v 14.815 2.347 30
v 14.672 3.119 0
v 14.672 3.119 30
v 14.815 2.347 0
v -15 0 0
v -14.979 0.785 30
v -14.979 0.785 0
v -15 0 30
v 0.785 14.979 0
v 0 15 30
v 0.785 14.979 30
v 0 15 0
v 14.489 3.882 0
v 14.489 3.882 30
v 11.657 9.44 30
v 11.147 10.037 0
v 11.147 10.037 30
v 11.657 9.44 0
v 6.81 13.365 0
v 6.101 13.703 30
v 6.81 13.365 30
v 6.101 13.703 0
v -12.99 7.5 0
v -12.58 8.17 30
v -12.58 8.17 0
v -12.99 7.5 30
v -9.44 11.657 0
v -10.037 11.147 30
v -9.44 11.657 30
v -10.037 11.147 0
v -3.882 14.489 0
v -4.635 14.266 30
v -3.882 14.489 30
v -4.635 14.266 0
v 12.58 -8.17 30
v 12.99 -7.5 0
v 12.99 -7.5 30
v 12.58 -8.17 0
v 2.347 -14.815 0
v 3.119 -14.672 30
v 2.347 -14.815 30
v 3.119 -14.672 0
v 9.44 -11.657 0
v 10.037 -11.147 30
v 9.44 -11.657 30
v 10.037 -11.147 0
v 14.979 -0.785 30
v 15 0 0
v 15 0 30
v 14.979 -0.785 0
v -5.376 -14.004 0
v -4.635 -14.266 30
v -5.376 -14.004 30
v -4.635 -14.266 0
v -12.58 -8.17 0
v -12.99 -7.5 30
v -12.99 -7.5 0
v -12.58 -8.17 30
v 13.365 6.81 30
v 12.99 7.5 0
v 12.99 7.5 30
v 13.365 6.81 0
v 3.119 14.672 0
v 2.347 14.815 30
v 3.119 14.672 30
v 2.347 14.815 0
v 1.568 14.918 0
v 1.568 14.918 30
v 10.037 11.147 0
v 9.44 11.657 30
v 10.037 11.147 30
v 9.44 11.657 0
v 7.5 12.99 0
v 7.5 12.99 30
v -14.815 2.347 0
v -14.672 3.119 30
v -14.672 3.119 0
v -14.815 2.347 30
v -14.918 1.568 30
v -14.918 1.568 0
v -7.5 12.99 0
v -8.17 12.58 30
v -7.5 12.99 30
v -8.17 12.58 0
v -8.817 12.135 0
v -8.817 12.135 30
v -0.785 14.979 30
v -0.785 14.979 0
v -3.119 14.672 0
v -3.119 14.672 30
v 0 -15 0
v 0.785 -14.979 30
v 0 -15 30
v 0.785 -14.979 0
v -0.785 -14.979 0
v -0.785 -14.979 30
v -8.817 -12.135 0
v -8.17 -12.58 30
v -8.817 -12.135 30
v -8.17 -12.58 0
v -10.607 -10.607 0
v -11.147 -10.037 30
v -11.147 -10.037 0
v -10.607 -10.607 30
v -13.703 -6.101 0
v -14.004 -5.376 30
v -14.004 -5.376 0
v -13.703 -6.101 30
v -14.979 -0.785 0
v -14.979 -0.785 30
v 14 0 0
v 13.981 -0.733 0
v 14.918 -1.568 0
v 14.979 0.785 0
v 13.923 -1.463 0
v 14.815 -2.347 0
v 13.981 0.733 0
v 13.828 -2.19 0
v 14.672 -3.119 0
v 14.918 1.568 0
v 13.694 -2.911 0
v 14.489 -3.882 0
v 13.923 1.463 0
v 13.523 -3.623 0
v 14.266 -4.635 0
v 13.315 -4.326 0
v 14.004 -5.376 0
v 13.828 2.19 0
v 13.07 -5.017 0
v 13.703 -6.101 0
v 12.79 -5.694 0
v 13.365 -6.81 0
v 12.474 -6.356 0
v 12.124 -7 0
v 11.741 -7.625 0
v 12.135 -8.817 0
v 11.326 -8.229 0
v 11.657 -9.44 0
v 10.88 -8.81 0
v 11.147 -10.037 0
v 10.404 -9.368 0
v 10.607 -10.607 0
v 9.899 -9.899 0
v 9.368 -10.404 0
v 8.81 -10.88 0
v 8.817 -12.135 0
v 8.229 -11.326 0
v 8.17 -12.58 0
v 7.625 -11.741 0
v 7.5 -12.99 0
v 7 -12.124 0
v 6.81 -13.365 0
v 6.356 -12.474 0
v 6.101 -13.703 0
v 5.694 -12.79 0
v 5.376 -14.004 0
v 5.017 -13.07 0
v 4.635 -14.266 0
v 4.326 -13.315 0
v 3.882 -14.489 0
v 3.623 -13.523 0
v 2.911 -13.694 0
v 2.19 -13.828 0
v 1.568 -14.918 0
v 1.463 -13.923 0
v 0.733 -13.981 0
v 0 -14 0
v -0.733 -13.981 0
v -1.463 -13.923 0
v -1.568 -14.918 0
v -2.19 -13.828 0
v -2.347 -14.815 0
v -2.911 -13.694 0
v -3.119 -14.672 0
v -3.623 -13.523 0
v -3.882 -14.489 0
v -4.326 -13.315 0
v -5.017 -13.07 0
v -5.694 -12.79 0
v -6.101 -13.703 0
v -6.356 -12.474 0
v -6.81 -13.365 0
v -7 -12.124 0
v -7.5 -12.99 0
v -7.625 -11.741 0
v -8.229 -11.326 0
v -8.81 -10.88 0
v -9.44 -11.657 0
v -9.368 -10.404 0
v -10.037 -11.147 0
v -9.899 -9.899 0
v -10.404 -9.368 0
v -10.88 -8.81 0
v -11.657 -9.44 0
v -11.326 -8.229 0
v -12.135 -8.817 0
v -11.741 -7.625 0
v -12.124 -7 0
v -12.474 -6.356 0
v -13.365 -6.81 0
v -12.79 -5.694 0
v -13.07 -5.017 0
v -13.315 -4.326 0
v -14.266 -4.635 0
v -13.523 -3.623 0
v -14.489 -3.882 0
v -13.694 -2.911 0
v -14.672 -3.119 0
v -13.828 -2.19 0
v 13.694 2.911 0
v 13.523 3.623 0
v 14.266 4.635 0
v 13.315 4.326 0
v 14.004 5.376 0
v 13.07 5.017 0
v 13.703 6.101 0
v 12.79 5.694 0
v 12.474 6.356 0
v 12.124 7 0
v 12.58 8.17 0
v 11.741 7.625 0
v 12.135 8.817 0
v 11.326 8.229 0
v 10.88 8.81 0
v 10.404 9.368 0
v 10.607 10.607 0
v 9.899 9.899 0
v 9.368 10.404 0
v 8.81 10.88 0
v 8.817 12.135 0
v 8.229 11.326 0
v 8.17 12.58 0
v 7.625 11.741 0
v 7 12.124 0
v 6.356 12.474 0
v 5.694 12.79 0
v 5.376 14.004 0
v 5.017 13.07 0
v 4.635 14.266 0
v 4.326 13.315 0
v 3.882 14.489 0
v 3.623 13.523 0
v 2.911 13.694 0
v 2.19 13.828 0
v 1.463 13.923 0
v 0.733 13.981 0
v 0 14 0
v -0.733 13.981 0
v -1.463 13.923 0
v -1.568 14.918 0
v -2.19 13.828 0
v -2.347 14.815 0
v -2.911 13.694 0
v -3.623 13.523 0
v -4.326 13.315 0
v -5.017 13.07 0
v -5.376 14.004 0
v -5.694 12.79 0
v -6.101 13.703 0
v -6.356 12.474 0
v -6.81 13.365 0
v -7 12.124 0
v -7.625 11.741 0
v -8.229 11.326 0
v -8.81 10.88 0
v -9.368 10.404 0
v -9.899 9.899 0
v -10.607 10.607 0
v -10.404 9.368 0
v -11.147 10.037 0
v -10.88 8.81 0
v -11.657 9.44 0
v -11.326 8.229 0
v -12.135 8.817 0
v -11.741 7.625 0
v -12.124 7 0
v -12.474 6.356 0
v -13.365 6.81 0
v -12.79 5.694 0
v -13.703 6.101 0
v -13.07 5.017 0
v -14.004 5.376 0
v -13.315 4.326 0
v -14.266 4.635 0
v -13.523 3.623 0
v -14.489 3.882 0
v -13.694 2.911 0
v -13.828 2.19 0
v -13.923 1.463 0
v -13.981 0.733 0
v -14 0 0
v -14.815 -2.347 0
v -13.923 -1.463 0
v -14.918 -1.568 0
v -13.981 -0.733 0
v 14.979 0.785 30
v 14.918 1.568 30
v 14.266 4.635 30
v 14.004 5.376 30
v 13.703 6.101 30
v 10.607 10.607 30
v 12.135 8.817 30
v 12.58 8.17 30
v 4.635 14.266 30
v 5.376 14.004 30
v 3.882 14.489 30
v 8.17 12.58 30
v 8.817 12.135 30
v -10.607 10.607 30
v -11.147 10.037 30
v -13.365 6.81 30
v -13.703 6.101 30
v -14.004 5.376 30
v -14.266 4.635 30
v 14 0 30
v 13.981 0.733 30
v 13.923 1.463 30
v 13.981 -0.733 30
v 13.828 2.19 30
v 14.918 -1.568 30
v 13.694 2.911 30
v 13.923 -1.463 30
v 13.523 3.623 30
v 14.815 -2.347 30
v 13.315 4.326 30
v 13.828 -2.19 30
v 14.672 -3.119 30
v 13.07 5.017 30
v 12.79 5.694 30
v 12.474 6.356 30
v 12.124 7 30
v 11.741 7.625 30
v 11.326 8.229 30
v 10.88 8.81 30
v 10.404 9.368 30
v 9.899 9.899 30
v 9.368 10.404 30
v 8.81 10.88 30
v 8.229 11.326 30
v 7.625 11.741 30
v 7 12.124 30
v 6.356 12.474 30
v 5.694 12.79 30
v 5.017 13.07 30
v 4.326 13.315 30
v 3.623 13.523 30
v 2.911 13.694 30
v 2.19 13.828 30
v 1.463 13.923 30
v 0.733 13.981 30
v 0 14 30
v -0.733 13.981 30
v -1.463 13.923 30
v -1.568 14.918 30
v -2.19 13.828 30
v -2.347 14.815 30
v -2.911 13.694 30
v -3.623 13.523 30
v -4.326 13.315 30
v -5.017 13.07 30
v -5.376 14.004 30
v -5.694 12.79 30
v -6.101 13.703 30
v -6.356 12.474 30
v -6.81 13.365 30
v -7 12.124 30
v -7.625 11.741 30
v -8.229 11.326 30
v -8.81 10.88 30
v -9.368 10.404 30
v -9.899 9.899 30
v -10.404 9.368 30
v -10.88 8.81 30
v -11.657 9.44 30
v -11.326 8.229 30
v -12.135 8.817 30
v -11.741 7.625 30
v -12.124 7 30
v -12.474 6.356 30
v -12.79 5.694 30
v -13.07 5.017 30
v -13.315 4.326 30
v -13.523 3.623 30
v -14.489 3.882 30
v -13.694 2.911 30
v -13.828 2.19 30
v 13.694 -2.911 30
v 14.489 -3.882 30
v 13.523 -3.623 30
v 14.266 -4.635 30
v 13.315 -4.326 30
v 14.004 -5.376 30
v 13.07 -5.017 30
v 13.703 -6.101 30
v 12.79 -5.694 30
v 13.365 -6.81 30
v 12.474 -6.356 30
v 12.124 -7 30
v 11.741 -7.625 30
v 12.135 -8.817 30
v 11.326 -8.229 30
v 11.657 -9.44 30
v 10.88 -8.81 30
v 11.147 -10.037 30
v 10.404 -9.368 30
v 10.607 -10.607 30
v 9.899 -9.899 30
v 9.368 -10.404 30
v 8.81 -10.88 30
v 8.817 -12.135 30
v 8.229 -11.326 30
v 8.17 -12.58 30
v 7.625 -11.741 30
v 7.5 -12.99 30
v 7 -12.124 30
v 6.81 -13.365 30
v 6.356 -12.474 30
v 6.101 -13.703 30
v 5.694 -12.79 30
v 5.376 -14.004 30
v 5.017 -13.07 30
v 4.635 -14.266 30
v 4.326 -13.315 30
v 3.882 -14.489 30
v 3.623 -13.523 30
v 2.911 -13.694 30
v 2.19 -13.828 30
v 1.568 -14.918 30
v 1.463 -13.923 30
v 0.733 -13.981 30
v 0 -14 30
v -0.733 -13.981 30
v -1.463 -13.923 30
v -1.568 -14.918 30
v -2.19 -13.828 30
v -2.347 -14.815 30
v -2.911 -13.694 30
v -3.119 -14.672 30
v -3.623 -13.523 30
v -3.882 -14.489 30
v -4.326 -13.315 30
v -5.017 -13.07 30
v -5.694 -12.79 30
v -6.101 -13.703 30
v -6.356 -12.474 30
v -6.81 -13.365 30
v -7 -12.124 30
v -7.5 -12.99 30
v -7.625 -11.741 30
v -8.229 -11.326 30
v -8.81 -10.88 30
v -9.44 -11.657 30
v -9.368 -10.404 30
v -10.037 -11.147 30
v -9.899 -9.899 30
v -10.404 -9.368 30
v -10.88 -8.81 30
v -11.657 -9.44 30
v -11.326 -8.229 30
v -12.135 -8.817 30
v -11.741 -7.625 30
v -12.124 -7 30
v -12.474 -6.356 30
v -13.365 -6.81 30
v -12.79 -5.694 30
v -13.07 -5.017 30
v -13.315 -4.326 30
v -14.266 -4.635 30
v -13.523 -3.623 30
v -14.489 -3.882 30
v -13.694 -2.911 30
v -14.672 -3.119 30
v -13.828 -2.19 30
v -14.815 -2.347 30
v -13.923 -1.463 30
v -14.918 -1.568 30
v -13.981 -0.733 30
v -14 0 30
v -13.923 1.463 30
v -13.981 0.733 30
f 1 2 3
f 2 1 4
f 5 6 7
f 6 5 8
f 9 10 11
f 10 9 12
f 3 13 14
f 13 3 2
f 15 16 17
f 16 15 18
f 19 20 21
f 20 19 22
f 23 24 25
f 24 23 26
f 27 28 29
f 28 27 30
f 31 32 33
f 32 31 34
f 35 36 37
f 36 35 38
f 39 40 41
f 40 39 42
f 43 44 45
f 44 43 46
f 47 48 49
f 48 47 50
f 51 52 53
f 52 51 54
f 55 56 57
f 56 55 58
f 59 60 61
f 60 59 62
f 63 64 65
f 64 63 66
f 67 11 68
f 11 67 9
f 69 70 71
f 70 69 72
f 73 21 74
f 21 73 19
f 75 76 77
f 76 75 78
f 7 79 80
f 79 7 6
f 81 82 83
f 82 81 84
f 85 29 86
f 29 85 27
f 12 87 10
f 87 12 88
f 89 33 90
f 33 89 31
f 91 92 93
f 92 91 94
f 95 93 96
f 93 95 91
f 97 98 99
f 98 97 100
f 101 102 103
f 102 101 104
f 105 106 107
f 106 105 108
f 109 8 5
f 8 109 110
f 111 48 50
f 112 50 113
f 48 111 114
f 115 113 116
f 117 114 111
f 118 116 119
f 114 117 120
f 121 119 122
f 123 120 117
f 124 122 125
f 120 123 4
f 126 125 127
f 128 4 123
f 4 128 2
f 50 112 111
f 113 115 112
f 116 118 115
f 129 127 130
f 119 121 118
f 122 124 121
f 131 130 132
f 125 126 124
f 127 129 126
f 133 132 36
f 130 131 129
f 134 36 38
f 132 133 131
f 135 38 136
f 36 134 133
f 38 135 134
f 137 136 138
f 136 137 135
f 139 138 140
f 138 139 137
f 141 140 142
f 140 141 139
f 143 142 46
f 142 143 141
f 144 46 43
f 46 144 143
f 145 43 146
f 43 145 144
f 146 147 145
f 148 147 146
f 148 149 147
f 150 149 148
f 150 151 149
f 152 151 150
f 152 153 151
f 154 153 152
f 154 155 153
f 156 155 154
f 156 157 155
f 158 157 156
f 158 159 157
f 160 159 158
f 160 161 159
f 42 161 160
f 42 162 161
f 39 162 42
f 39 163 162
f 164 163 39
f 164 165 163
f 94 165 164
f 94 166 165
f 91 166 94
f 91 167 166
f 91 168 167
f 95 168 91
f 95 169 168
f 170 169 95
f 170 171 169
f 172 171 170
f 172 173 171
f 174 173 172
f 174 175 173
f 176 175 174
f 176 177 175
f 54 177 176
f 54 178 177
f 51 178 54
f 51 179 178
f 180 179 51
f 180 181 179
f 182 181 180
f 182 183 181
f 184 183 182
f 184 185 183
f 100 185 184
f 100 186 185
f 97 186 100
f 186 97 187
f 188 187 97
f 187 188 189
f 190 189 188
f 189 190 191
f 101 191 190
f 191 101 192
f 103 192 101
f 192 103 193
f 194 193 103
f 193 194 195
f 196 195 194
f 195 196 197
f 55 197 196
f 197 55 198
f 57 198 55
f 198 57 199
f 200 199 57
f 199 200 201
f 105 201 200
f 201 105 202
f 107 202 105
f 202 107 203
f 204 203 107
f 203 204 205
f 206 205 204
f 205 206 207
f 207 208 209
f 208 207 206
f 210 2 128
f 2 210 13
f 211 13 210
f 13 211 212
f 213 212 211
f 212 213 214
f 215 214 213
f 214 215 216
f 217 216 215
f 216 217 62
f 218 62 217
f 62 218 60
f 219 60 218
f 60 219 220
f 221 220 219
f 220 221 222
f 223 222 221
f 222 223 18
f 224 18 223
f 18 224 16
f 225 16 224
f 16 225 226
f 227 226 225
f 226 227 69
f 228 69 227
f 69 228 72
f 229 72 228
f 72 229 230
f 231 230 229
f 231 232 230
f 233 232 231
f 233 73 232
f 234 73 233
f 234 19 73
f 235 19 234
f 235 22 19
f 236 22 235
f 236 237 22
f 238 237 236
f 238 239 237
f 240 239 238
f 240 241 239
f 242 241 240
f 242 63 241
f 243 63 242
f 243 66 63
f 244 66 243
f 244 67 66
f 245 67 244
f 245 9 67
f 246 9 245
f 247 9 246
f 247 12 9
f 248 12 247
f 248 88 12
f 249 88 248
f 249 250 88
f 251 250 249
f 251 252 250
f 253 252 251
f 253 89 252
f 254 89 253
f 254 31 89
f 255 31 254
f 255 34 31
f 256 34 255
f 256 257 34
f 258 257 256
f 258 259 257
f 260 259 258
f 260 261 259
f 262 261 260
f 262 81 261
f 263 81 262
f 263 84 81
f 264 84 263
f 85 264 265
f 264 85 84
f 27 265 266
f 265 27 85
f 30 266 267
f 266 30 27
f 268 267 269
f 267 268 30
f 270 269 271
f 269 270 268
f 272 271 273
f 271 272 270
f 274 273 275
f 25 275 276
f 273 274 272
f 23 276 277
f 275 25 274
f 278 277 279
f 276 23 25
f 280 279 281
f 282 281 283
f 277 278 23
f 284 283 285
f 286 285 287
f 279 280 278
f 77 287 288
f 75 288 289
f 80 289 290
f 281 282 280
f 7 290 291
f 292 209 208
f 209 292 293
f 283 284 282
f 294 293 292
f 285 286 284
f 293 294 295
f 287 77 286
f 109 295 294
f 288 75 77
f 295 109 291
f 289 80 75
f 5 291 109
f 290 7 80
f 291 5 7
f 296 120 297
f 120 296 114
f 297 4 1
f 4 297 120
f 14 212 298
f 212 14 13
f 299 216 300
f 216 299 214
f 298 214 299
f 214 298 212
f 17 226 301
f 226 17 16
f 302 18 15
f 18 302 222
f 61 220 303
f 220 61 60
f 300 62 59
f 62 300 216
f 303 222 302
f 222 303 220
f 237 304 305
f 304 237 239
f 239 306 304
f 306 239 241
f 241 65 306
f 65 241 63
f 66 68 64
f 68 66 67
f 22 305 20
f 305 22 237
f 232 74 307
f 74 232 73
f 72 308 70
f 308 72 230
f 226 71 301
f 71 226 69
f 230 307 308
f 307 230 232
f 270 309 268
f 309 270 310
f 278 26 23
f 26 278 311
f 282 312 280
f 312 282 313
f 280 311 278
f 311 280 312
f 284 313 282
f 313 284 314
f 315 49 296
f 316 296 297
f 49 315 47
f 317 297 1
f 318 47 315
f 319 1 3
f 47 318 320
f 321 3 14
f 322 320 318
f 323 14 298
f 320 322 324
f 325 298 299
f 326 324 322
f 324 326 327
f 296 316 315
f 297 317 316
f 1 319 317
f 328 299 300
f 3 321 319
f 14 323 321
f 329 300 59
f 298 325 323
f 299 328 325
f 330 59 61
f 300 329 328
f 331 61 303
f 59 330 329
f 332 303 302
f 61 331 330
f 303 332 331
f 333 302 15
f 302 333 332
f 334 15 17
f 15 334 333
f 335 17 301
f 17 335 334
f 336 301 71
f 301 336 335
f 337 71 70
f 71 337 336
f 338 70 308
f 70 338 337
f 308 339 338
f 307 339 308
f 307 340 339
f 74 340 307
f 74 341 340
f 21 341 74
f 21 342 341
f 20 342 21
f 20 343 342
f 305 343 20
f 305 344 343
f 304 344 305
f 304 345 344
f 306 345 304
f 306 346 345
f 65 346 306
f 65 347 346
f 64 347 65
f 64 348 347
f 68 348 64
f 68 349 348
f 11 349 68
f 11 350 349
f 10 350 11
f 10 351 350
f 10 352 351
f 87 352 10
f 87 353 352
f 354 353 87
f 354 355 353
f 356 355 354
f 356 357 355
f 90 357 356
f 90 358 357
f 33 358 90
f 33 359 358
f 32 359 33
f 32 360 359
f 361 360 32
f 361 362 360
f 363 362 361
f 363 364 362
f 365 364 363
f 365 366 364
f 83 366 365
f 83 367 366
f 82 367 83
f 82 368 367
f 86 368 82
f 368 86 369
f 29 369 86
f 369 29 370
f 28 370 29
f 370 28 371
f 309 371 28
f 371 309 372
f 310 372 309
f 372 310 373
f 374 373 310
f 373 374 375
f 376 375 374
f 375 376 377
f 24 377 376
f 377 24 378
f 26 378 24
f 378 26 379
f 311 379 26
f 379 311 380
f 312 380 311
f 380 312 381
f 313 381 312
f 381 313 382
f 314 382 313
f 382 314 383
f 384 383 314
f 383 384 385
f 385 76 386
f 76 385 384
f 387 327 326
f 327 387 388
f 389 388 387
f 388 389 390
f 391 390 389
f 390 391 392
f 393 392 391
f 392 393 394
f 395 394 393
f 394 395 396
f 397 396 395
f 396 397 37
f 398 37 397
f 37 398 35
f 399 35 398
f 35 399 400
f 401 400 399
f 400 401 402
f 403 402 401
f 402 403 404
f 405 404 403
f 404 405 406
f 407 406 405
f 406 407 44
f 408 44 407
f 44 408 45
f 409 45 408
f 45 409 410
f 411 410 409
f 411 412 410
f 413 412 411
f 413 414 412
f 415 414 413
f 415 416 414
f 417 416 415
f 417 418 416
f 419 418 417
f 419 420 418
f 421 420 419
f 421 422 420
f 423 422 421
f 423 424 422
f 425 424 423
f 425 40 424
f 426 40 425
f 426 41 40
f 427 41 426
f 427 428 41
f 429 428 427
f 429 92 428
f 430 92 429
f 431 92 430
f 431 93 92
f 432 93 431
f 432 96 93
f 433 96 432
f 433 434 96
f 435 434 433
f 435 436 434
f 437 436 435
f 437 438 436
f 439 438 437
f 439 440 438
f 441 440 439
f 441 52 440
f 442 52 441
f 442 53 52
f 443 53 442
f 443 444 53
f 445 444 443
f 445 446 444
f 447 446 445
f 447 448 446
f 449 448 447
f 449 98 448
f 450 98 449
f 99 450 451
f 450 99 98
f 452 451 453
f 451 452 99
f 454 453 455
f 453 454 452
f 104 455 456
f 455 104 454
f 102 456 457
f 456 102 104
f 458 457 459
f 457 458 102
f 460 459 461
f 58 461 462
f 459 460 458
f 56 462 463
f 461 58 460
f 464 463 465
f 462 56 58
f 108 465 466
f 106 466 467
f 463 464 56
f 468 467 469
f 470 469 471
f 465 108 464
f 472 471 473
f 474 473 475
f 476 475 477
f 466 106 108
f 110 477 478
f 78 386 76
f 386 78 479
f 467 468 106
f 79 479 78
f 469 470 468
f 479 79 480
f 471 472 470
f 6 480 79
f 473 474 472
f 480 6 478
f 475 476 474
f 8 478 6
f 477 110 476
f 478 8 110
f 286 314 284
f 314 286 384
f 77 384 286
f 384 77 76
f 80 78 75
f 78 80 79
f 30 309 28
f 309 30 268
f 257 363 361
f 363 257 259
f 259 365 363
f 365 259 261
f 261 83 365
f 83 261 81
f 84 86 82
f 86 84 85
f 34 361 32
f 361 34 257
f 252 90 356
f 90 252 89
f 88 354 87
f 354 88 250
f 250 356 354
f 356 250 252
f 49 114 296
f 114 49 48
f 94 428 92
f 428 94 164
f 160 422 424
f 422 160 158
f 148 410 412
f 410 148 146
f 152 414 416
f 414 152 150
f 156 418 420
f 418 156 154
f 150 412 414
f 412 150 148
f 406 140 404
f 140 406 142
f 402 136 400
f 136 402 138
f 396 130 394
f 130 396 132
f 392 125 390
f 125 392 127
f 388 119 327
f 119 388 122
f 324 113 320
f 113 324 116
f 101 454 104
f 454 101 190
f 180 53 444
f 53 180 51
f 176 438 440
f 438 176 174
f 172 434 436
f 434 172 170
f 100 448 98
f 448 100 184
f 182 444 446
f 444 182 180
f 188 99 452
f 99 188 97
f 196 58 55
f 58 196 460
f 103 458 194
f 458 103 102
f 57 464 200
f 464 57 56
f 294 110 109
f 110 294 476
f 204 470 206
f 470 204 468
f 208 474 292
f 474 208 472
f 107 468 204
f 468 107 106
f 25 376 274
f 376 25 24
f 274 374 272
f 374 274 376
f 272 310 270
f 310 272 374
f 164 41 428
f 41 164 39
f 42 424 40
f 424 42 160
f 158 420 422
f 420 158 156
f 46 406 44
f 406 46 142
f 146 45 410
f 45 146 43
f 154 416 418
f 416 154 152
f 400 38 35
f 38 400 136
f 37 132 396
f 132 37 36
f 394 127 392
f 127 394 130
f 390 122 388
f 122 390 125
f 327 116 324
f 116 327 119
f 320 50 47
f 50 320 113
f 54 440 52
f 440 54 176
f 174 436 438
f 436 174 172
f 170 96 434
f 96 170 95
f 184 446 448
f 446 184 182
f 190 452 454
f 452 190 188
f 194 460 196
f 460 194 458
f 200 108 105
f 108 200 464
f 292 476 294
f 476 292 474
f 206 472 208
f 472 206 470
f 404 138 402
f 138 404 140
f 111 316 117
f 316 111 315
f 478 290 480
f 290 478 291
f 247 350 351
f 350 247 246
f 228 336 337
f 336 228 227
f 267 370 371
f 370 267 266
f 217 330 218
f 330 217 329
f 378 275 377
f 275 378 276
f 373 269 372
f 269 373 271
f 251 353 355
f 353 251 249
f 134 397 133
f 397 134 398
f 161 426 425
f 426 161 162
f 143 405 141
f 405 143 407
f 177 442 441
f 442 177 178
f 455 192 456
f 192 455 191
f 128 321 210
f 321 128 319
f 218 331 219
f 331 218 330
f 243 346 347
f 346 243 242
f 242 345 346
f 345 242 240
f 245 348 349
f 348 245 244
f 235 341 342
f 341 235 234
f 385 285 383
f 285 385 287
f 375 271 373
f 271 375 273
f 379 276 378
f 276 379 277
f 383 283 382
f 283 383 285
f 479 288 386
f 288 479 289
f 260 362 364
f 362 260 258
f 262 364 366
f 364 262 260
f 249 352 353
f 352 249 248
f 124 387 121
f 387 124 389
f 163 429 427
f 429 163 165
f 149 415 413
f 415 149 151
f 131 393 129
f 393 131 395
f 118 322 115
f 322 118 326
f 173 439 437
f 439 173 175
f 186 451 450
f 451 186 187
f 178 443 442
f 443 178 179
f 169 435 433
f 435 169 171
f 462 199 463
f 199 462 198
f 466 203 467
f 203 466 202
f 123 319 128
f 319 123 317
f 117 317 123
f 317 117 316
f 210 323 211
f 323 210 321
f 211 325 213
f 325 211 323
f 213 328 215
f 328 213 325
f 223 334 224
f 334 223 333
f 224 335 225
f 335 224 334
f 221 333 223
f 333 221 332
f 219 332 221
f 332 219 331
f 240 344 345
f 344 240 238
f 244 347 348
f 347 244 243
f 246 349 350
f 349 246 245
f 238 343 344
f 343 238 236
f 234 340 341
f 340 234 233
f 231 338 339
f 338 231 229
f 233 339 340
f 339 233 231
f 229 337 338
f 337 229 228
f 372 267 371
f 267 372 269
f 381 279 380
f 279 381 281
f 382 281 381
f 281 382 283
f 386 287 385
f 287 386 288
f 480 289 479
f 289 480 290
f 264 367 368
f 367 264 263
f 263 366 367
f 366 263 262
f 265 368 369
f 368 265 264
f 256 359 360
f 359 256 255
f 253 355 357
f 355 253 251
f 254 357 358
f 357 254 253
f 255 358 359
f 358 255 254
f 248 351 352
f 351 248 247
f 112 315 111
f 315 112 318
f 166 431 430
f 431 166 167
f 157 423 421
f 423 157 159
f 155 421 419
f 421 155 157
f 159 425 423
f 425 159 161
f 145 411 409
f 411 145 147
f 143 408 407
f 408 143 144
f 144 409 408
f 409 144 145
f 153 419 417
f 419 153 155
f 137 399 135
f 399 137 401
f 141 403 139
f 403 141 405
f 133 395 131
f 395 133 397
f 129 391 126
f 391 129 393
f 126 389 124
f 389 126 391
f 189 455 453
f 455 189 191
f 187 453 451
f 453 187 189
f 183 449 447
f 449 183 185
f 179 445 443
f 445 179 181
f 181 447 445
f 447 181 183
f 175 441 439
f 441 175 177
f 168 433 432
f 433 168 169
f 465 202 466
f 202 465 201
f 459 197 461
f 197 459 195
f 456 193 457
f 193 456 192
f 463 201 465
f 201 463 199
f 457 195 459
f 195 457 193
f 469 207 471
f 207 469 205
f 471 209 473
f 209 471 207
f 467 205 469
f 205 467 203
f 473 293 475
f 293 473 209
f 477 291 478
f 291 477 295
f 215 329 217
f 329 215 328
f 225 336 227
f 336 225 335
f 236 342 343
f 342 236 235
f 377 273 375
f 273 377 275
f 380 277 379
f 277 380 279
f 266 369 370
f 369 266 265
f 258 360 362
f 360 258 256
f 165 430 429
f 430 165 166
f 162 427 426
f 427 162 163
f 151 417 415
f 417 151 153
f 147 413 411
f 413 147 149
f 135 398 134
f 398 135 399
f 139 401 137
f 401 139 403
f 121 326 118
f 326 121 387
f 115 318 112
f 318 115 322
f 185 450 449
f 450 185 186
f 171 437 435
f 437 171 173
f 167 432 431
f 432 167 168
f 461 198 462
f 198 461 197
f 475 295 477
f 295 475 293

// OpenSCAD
difference() {
    $fn = 120;
    cylinder(h= 30, r = 30/2);
    cylinder(h= 30, r = 28/2);    
}
